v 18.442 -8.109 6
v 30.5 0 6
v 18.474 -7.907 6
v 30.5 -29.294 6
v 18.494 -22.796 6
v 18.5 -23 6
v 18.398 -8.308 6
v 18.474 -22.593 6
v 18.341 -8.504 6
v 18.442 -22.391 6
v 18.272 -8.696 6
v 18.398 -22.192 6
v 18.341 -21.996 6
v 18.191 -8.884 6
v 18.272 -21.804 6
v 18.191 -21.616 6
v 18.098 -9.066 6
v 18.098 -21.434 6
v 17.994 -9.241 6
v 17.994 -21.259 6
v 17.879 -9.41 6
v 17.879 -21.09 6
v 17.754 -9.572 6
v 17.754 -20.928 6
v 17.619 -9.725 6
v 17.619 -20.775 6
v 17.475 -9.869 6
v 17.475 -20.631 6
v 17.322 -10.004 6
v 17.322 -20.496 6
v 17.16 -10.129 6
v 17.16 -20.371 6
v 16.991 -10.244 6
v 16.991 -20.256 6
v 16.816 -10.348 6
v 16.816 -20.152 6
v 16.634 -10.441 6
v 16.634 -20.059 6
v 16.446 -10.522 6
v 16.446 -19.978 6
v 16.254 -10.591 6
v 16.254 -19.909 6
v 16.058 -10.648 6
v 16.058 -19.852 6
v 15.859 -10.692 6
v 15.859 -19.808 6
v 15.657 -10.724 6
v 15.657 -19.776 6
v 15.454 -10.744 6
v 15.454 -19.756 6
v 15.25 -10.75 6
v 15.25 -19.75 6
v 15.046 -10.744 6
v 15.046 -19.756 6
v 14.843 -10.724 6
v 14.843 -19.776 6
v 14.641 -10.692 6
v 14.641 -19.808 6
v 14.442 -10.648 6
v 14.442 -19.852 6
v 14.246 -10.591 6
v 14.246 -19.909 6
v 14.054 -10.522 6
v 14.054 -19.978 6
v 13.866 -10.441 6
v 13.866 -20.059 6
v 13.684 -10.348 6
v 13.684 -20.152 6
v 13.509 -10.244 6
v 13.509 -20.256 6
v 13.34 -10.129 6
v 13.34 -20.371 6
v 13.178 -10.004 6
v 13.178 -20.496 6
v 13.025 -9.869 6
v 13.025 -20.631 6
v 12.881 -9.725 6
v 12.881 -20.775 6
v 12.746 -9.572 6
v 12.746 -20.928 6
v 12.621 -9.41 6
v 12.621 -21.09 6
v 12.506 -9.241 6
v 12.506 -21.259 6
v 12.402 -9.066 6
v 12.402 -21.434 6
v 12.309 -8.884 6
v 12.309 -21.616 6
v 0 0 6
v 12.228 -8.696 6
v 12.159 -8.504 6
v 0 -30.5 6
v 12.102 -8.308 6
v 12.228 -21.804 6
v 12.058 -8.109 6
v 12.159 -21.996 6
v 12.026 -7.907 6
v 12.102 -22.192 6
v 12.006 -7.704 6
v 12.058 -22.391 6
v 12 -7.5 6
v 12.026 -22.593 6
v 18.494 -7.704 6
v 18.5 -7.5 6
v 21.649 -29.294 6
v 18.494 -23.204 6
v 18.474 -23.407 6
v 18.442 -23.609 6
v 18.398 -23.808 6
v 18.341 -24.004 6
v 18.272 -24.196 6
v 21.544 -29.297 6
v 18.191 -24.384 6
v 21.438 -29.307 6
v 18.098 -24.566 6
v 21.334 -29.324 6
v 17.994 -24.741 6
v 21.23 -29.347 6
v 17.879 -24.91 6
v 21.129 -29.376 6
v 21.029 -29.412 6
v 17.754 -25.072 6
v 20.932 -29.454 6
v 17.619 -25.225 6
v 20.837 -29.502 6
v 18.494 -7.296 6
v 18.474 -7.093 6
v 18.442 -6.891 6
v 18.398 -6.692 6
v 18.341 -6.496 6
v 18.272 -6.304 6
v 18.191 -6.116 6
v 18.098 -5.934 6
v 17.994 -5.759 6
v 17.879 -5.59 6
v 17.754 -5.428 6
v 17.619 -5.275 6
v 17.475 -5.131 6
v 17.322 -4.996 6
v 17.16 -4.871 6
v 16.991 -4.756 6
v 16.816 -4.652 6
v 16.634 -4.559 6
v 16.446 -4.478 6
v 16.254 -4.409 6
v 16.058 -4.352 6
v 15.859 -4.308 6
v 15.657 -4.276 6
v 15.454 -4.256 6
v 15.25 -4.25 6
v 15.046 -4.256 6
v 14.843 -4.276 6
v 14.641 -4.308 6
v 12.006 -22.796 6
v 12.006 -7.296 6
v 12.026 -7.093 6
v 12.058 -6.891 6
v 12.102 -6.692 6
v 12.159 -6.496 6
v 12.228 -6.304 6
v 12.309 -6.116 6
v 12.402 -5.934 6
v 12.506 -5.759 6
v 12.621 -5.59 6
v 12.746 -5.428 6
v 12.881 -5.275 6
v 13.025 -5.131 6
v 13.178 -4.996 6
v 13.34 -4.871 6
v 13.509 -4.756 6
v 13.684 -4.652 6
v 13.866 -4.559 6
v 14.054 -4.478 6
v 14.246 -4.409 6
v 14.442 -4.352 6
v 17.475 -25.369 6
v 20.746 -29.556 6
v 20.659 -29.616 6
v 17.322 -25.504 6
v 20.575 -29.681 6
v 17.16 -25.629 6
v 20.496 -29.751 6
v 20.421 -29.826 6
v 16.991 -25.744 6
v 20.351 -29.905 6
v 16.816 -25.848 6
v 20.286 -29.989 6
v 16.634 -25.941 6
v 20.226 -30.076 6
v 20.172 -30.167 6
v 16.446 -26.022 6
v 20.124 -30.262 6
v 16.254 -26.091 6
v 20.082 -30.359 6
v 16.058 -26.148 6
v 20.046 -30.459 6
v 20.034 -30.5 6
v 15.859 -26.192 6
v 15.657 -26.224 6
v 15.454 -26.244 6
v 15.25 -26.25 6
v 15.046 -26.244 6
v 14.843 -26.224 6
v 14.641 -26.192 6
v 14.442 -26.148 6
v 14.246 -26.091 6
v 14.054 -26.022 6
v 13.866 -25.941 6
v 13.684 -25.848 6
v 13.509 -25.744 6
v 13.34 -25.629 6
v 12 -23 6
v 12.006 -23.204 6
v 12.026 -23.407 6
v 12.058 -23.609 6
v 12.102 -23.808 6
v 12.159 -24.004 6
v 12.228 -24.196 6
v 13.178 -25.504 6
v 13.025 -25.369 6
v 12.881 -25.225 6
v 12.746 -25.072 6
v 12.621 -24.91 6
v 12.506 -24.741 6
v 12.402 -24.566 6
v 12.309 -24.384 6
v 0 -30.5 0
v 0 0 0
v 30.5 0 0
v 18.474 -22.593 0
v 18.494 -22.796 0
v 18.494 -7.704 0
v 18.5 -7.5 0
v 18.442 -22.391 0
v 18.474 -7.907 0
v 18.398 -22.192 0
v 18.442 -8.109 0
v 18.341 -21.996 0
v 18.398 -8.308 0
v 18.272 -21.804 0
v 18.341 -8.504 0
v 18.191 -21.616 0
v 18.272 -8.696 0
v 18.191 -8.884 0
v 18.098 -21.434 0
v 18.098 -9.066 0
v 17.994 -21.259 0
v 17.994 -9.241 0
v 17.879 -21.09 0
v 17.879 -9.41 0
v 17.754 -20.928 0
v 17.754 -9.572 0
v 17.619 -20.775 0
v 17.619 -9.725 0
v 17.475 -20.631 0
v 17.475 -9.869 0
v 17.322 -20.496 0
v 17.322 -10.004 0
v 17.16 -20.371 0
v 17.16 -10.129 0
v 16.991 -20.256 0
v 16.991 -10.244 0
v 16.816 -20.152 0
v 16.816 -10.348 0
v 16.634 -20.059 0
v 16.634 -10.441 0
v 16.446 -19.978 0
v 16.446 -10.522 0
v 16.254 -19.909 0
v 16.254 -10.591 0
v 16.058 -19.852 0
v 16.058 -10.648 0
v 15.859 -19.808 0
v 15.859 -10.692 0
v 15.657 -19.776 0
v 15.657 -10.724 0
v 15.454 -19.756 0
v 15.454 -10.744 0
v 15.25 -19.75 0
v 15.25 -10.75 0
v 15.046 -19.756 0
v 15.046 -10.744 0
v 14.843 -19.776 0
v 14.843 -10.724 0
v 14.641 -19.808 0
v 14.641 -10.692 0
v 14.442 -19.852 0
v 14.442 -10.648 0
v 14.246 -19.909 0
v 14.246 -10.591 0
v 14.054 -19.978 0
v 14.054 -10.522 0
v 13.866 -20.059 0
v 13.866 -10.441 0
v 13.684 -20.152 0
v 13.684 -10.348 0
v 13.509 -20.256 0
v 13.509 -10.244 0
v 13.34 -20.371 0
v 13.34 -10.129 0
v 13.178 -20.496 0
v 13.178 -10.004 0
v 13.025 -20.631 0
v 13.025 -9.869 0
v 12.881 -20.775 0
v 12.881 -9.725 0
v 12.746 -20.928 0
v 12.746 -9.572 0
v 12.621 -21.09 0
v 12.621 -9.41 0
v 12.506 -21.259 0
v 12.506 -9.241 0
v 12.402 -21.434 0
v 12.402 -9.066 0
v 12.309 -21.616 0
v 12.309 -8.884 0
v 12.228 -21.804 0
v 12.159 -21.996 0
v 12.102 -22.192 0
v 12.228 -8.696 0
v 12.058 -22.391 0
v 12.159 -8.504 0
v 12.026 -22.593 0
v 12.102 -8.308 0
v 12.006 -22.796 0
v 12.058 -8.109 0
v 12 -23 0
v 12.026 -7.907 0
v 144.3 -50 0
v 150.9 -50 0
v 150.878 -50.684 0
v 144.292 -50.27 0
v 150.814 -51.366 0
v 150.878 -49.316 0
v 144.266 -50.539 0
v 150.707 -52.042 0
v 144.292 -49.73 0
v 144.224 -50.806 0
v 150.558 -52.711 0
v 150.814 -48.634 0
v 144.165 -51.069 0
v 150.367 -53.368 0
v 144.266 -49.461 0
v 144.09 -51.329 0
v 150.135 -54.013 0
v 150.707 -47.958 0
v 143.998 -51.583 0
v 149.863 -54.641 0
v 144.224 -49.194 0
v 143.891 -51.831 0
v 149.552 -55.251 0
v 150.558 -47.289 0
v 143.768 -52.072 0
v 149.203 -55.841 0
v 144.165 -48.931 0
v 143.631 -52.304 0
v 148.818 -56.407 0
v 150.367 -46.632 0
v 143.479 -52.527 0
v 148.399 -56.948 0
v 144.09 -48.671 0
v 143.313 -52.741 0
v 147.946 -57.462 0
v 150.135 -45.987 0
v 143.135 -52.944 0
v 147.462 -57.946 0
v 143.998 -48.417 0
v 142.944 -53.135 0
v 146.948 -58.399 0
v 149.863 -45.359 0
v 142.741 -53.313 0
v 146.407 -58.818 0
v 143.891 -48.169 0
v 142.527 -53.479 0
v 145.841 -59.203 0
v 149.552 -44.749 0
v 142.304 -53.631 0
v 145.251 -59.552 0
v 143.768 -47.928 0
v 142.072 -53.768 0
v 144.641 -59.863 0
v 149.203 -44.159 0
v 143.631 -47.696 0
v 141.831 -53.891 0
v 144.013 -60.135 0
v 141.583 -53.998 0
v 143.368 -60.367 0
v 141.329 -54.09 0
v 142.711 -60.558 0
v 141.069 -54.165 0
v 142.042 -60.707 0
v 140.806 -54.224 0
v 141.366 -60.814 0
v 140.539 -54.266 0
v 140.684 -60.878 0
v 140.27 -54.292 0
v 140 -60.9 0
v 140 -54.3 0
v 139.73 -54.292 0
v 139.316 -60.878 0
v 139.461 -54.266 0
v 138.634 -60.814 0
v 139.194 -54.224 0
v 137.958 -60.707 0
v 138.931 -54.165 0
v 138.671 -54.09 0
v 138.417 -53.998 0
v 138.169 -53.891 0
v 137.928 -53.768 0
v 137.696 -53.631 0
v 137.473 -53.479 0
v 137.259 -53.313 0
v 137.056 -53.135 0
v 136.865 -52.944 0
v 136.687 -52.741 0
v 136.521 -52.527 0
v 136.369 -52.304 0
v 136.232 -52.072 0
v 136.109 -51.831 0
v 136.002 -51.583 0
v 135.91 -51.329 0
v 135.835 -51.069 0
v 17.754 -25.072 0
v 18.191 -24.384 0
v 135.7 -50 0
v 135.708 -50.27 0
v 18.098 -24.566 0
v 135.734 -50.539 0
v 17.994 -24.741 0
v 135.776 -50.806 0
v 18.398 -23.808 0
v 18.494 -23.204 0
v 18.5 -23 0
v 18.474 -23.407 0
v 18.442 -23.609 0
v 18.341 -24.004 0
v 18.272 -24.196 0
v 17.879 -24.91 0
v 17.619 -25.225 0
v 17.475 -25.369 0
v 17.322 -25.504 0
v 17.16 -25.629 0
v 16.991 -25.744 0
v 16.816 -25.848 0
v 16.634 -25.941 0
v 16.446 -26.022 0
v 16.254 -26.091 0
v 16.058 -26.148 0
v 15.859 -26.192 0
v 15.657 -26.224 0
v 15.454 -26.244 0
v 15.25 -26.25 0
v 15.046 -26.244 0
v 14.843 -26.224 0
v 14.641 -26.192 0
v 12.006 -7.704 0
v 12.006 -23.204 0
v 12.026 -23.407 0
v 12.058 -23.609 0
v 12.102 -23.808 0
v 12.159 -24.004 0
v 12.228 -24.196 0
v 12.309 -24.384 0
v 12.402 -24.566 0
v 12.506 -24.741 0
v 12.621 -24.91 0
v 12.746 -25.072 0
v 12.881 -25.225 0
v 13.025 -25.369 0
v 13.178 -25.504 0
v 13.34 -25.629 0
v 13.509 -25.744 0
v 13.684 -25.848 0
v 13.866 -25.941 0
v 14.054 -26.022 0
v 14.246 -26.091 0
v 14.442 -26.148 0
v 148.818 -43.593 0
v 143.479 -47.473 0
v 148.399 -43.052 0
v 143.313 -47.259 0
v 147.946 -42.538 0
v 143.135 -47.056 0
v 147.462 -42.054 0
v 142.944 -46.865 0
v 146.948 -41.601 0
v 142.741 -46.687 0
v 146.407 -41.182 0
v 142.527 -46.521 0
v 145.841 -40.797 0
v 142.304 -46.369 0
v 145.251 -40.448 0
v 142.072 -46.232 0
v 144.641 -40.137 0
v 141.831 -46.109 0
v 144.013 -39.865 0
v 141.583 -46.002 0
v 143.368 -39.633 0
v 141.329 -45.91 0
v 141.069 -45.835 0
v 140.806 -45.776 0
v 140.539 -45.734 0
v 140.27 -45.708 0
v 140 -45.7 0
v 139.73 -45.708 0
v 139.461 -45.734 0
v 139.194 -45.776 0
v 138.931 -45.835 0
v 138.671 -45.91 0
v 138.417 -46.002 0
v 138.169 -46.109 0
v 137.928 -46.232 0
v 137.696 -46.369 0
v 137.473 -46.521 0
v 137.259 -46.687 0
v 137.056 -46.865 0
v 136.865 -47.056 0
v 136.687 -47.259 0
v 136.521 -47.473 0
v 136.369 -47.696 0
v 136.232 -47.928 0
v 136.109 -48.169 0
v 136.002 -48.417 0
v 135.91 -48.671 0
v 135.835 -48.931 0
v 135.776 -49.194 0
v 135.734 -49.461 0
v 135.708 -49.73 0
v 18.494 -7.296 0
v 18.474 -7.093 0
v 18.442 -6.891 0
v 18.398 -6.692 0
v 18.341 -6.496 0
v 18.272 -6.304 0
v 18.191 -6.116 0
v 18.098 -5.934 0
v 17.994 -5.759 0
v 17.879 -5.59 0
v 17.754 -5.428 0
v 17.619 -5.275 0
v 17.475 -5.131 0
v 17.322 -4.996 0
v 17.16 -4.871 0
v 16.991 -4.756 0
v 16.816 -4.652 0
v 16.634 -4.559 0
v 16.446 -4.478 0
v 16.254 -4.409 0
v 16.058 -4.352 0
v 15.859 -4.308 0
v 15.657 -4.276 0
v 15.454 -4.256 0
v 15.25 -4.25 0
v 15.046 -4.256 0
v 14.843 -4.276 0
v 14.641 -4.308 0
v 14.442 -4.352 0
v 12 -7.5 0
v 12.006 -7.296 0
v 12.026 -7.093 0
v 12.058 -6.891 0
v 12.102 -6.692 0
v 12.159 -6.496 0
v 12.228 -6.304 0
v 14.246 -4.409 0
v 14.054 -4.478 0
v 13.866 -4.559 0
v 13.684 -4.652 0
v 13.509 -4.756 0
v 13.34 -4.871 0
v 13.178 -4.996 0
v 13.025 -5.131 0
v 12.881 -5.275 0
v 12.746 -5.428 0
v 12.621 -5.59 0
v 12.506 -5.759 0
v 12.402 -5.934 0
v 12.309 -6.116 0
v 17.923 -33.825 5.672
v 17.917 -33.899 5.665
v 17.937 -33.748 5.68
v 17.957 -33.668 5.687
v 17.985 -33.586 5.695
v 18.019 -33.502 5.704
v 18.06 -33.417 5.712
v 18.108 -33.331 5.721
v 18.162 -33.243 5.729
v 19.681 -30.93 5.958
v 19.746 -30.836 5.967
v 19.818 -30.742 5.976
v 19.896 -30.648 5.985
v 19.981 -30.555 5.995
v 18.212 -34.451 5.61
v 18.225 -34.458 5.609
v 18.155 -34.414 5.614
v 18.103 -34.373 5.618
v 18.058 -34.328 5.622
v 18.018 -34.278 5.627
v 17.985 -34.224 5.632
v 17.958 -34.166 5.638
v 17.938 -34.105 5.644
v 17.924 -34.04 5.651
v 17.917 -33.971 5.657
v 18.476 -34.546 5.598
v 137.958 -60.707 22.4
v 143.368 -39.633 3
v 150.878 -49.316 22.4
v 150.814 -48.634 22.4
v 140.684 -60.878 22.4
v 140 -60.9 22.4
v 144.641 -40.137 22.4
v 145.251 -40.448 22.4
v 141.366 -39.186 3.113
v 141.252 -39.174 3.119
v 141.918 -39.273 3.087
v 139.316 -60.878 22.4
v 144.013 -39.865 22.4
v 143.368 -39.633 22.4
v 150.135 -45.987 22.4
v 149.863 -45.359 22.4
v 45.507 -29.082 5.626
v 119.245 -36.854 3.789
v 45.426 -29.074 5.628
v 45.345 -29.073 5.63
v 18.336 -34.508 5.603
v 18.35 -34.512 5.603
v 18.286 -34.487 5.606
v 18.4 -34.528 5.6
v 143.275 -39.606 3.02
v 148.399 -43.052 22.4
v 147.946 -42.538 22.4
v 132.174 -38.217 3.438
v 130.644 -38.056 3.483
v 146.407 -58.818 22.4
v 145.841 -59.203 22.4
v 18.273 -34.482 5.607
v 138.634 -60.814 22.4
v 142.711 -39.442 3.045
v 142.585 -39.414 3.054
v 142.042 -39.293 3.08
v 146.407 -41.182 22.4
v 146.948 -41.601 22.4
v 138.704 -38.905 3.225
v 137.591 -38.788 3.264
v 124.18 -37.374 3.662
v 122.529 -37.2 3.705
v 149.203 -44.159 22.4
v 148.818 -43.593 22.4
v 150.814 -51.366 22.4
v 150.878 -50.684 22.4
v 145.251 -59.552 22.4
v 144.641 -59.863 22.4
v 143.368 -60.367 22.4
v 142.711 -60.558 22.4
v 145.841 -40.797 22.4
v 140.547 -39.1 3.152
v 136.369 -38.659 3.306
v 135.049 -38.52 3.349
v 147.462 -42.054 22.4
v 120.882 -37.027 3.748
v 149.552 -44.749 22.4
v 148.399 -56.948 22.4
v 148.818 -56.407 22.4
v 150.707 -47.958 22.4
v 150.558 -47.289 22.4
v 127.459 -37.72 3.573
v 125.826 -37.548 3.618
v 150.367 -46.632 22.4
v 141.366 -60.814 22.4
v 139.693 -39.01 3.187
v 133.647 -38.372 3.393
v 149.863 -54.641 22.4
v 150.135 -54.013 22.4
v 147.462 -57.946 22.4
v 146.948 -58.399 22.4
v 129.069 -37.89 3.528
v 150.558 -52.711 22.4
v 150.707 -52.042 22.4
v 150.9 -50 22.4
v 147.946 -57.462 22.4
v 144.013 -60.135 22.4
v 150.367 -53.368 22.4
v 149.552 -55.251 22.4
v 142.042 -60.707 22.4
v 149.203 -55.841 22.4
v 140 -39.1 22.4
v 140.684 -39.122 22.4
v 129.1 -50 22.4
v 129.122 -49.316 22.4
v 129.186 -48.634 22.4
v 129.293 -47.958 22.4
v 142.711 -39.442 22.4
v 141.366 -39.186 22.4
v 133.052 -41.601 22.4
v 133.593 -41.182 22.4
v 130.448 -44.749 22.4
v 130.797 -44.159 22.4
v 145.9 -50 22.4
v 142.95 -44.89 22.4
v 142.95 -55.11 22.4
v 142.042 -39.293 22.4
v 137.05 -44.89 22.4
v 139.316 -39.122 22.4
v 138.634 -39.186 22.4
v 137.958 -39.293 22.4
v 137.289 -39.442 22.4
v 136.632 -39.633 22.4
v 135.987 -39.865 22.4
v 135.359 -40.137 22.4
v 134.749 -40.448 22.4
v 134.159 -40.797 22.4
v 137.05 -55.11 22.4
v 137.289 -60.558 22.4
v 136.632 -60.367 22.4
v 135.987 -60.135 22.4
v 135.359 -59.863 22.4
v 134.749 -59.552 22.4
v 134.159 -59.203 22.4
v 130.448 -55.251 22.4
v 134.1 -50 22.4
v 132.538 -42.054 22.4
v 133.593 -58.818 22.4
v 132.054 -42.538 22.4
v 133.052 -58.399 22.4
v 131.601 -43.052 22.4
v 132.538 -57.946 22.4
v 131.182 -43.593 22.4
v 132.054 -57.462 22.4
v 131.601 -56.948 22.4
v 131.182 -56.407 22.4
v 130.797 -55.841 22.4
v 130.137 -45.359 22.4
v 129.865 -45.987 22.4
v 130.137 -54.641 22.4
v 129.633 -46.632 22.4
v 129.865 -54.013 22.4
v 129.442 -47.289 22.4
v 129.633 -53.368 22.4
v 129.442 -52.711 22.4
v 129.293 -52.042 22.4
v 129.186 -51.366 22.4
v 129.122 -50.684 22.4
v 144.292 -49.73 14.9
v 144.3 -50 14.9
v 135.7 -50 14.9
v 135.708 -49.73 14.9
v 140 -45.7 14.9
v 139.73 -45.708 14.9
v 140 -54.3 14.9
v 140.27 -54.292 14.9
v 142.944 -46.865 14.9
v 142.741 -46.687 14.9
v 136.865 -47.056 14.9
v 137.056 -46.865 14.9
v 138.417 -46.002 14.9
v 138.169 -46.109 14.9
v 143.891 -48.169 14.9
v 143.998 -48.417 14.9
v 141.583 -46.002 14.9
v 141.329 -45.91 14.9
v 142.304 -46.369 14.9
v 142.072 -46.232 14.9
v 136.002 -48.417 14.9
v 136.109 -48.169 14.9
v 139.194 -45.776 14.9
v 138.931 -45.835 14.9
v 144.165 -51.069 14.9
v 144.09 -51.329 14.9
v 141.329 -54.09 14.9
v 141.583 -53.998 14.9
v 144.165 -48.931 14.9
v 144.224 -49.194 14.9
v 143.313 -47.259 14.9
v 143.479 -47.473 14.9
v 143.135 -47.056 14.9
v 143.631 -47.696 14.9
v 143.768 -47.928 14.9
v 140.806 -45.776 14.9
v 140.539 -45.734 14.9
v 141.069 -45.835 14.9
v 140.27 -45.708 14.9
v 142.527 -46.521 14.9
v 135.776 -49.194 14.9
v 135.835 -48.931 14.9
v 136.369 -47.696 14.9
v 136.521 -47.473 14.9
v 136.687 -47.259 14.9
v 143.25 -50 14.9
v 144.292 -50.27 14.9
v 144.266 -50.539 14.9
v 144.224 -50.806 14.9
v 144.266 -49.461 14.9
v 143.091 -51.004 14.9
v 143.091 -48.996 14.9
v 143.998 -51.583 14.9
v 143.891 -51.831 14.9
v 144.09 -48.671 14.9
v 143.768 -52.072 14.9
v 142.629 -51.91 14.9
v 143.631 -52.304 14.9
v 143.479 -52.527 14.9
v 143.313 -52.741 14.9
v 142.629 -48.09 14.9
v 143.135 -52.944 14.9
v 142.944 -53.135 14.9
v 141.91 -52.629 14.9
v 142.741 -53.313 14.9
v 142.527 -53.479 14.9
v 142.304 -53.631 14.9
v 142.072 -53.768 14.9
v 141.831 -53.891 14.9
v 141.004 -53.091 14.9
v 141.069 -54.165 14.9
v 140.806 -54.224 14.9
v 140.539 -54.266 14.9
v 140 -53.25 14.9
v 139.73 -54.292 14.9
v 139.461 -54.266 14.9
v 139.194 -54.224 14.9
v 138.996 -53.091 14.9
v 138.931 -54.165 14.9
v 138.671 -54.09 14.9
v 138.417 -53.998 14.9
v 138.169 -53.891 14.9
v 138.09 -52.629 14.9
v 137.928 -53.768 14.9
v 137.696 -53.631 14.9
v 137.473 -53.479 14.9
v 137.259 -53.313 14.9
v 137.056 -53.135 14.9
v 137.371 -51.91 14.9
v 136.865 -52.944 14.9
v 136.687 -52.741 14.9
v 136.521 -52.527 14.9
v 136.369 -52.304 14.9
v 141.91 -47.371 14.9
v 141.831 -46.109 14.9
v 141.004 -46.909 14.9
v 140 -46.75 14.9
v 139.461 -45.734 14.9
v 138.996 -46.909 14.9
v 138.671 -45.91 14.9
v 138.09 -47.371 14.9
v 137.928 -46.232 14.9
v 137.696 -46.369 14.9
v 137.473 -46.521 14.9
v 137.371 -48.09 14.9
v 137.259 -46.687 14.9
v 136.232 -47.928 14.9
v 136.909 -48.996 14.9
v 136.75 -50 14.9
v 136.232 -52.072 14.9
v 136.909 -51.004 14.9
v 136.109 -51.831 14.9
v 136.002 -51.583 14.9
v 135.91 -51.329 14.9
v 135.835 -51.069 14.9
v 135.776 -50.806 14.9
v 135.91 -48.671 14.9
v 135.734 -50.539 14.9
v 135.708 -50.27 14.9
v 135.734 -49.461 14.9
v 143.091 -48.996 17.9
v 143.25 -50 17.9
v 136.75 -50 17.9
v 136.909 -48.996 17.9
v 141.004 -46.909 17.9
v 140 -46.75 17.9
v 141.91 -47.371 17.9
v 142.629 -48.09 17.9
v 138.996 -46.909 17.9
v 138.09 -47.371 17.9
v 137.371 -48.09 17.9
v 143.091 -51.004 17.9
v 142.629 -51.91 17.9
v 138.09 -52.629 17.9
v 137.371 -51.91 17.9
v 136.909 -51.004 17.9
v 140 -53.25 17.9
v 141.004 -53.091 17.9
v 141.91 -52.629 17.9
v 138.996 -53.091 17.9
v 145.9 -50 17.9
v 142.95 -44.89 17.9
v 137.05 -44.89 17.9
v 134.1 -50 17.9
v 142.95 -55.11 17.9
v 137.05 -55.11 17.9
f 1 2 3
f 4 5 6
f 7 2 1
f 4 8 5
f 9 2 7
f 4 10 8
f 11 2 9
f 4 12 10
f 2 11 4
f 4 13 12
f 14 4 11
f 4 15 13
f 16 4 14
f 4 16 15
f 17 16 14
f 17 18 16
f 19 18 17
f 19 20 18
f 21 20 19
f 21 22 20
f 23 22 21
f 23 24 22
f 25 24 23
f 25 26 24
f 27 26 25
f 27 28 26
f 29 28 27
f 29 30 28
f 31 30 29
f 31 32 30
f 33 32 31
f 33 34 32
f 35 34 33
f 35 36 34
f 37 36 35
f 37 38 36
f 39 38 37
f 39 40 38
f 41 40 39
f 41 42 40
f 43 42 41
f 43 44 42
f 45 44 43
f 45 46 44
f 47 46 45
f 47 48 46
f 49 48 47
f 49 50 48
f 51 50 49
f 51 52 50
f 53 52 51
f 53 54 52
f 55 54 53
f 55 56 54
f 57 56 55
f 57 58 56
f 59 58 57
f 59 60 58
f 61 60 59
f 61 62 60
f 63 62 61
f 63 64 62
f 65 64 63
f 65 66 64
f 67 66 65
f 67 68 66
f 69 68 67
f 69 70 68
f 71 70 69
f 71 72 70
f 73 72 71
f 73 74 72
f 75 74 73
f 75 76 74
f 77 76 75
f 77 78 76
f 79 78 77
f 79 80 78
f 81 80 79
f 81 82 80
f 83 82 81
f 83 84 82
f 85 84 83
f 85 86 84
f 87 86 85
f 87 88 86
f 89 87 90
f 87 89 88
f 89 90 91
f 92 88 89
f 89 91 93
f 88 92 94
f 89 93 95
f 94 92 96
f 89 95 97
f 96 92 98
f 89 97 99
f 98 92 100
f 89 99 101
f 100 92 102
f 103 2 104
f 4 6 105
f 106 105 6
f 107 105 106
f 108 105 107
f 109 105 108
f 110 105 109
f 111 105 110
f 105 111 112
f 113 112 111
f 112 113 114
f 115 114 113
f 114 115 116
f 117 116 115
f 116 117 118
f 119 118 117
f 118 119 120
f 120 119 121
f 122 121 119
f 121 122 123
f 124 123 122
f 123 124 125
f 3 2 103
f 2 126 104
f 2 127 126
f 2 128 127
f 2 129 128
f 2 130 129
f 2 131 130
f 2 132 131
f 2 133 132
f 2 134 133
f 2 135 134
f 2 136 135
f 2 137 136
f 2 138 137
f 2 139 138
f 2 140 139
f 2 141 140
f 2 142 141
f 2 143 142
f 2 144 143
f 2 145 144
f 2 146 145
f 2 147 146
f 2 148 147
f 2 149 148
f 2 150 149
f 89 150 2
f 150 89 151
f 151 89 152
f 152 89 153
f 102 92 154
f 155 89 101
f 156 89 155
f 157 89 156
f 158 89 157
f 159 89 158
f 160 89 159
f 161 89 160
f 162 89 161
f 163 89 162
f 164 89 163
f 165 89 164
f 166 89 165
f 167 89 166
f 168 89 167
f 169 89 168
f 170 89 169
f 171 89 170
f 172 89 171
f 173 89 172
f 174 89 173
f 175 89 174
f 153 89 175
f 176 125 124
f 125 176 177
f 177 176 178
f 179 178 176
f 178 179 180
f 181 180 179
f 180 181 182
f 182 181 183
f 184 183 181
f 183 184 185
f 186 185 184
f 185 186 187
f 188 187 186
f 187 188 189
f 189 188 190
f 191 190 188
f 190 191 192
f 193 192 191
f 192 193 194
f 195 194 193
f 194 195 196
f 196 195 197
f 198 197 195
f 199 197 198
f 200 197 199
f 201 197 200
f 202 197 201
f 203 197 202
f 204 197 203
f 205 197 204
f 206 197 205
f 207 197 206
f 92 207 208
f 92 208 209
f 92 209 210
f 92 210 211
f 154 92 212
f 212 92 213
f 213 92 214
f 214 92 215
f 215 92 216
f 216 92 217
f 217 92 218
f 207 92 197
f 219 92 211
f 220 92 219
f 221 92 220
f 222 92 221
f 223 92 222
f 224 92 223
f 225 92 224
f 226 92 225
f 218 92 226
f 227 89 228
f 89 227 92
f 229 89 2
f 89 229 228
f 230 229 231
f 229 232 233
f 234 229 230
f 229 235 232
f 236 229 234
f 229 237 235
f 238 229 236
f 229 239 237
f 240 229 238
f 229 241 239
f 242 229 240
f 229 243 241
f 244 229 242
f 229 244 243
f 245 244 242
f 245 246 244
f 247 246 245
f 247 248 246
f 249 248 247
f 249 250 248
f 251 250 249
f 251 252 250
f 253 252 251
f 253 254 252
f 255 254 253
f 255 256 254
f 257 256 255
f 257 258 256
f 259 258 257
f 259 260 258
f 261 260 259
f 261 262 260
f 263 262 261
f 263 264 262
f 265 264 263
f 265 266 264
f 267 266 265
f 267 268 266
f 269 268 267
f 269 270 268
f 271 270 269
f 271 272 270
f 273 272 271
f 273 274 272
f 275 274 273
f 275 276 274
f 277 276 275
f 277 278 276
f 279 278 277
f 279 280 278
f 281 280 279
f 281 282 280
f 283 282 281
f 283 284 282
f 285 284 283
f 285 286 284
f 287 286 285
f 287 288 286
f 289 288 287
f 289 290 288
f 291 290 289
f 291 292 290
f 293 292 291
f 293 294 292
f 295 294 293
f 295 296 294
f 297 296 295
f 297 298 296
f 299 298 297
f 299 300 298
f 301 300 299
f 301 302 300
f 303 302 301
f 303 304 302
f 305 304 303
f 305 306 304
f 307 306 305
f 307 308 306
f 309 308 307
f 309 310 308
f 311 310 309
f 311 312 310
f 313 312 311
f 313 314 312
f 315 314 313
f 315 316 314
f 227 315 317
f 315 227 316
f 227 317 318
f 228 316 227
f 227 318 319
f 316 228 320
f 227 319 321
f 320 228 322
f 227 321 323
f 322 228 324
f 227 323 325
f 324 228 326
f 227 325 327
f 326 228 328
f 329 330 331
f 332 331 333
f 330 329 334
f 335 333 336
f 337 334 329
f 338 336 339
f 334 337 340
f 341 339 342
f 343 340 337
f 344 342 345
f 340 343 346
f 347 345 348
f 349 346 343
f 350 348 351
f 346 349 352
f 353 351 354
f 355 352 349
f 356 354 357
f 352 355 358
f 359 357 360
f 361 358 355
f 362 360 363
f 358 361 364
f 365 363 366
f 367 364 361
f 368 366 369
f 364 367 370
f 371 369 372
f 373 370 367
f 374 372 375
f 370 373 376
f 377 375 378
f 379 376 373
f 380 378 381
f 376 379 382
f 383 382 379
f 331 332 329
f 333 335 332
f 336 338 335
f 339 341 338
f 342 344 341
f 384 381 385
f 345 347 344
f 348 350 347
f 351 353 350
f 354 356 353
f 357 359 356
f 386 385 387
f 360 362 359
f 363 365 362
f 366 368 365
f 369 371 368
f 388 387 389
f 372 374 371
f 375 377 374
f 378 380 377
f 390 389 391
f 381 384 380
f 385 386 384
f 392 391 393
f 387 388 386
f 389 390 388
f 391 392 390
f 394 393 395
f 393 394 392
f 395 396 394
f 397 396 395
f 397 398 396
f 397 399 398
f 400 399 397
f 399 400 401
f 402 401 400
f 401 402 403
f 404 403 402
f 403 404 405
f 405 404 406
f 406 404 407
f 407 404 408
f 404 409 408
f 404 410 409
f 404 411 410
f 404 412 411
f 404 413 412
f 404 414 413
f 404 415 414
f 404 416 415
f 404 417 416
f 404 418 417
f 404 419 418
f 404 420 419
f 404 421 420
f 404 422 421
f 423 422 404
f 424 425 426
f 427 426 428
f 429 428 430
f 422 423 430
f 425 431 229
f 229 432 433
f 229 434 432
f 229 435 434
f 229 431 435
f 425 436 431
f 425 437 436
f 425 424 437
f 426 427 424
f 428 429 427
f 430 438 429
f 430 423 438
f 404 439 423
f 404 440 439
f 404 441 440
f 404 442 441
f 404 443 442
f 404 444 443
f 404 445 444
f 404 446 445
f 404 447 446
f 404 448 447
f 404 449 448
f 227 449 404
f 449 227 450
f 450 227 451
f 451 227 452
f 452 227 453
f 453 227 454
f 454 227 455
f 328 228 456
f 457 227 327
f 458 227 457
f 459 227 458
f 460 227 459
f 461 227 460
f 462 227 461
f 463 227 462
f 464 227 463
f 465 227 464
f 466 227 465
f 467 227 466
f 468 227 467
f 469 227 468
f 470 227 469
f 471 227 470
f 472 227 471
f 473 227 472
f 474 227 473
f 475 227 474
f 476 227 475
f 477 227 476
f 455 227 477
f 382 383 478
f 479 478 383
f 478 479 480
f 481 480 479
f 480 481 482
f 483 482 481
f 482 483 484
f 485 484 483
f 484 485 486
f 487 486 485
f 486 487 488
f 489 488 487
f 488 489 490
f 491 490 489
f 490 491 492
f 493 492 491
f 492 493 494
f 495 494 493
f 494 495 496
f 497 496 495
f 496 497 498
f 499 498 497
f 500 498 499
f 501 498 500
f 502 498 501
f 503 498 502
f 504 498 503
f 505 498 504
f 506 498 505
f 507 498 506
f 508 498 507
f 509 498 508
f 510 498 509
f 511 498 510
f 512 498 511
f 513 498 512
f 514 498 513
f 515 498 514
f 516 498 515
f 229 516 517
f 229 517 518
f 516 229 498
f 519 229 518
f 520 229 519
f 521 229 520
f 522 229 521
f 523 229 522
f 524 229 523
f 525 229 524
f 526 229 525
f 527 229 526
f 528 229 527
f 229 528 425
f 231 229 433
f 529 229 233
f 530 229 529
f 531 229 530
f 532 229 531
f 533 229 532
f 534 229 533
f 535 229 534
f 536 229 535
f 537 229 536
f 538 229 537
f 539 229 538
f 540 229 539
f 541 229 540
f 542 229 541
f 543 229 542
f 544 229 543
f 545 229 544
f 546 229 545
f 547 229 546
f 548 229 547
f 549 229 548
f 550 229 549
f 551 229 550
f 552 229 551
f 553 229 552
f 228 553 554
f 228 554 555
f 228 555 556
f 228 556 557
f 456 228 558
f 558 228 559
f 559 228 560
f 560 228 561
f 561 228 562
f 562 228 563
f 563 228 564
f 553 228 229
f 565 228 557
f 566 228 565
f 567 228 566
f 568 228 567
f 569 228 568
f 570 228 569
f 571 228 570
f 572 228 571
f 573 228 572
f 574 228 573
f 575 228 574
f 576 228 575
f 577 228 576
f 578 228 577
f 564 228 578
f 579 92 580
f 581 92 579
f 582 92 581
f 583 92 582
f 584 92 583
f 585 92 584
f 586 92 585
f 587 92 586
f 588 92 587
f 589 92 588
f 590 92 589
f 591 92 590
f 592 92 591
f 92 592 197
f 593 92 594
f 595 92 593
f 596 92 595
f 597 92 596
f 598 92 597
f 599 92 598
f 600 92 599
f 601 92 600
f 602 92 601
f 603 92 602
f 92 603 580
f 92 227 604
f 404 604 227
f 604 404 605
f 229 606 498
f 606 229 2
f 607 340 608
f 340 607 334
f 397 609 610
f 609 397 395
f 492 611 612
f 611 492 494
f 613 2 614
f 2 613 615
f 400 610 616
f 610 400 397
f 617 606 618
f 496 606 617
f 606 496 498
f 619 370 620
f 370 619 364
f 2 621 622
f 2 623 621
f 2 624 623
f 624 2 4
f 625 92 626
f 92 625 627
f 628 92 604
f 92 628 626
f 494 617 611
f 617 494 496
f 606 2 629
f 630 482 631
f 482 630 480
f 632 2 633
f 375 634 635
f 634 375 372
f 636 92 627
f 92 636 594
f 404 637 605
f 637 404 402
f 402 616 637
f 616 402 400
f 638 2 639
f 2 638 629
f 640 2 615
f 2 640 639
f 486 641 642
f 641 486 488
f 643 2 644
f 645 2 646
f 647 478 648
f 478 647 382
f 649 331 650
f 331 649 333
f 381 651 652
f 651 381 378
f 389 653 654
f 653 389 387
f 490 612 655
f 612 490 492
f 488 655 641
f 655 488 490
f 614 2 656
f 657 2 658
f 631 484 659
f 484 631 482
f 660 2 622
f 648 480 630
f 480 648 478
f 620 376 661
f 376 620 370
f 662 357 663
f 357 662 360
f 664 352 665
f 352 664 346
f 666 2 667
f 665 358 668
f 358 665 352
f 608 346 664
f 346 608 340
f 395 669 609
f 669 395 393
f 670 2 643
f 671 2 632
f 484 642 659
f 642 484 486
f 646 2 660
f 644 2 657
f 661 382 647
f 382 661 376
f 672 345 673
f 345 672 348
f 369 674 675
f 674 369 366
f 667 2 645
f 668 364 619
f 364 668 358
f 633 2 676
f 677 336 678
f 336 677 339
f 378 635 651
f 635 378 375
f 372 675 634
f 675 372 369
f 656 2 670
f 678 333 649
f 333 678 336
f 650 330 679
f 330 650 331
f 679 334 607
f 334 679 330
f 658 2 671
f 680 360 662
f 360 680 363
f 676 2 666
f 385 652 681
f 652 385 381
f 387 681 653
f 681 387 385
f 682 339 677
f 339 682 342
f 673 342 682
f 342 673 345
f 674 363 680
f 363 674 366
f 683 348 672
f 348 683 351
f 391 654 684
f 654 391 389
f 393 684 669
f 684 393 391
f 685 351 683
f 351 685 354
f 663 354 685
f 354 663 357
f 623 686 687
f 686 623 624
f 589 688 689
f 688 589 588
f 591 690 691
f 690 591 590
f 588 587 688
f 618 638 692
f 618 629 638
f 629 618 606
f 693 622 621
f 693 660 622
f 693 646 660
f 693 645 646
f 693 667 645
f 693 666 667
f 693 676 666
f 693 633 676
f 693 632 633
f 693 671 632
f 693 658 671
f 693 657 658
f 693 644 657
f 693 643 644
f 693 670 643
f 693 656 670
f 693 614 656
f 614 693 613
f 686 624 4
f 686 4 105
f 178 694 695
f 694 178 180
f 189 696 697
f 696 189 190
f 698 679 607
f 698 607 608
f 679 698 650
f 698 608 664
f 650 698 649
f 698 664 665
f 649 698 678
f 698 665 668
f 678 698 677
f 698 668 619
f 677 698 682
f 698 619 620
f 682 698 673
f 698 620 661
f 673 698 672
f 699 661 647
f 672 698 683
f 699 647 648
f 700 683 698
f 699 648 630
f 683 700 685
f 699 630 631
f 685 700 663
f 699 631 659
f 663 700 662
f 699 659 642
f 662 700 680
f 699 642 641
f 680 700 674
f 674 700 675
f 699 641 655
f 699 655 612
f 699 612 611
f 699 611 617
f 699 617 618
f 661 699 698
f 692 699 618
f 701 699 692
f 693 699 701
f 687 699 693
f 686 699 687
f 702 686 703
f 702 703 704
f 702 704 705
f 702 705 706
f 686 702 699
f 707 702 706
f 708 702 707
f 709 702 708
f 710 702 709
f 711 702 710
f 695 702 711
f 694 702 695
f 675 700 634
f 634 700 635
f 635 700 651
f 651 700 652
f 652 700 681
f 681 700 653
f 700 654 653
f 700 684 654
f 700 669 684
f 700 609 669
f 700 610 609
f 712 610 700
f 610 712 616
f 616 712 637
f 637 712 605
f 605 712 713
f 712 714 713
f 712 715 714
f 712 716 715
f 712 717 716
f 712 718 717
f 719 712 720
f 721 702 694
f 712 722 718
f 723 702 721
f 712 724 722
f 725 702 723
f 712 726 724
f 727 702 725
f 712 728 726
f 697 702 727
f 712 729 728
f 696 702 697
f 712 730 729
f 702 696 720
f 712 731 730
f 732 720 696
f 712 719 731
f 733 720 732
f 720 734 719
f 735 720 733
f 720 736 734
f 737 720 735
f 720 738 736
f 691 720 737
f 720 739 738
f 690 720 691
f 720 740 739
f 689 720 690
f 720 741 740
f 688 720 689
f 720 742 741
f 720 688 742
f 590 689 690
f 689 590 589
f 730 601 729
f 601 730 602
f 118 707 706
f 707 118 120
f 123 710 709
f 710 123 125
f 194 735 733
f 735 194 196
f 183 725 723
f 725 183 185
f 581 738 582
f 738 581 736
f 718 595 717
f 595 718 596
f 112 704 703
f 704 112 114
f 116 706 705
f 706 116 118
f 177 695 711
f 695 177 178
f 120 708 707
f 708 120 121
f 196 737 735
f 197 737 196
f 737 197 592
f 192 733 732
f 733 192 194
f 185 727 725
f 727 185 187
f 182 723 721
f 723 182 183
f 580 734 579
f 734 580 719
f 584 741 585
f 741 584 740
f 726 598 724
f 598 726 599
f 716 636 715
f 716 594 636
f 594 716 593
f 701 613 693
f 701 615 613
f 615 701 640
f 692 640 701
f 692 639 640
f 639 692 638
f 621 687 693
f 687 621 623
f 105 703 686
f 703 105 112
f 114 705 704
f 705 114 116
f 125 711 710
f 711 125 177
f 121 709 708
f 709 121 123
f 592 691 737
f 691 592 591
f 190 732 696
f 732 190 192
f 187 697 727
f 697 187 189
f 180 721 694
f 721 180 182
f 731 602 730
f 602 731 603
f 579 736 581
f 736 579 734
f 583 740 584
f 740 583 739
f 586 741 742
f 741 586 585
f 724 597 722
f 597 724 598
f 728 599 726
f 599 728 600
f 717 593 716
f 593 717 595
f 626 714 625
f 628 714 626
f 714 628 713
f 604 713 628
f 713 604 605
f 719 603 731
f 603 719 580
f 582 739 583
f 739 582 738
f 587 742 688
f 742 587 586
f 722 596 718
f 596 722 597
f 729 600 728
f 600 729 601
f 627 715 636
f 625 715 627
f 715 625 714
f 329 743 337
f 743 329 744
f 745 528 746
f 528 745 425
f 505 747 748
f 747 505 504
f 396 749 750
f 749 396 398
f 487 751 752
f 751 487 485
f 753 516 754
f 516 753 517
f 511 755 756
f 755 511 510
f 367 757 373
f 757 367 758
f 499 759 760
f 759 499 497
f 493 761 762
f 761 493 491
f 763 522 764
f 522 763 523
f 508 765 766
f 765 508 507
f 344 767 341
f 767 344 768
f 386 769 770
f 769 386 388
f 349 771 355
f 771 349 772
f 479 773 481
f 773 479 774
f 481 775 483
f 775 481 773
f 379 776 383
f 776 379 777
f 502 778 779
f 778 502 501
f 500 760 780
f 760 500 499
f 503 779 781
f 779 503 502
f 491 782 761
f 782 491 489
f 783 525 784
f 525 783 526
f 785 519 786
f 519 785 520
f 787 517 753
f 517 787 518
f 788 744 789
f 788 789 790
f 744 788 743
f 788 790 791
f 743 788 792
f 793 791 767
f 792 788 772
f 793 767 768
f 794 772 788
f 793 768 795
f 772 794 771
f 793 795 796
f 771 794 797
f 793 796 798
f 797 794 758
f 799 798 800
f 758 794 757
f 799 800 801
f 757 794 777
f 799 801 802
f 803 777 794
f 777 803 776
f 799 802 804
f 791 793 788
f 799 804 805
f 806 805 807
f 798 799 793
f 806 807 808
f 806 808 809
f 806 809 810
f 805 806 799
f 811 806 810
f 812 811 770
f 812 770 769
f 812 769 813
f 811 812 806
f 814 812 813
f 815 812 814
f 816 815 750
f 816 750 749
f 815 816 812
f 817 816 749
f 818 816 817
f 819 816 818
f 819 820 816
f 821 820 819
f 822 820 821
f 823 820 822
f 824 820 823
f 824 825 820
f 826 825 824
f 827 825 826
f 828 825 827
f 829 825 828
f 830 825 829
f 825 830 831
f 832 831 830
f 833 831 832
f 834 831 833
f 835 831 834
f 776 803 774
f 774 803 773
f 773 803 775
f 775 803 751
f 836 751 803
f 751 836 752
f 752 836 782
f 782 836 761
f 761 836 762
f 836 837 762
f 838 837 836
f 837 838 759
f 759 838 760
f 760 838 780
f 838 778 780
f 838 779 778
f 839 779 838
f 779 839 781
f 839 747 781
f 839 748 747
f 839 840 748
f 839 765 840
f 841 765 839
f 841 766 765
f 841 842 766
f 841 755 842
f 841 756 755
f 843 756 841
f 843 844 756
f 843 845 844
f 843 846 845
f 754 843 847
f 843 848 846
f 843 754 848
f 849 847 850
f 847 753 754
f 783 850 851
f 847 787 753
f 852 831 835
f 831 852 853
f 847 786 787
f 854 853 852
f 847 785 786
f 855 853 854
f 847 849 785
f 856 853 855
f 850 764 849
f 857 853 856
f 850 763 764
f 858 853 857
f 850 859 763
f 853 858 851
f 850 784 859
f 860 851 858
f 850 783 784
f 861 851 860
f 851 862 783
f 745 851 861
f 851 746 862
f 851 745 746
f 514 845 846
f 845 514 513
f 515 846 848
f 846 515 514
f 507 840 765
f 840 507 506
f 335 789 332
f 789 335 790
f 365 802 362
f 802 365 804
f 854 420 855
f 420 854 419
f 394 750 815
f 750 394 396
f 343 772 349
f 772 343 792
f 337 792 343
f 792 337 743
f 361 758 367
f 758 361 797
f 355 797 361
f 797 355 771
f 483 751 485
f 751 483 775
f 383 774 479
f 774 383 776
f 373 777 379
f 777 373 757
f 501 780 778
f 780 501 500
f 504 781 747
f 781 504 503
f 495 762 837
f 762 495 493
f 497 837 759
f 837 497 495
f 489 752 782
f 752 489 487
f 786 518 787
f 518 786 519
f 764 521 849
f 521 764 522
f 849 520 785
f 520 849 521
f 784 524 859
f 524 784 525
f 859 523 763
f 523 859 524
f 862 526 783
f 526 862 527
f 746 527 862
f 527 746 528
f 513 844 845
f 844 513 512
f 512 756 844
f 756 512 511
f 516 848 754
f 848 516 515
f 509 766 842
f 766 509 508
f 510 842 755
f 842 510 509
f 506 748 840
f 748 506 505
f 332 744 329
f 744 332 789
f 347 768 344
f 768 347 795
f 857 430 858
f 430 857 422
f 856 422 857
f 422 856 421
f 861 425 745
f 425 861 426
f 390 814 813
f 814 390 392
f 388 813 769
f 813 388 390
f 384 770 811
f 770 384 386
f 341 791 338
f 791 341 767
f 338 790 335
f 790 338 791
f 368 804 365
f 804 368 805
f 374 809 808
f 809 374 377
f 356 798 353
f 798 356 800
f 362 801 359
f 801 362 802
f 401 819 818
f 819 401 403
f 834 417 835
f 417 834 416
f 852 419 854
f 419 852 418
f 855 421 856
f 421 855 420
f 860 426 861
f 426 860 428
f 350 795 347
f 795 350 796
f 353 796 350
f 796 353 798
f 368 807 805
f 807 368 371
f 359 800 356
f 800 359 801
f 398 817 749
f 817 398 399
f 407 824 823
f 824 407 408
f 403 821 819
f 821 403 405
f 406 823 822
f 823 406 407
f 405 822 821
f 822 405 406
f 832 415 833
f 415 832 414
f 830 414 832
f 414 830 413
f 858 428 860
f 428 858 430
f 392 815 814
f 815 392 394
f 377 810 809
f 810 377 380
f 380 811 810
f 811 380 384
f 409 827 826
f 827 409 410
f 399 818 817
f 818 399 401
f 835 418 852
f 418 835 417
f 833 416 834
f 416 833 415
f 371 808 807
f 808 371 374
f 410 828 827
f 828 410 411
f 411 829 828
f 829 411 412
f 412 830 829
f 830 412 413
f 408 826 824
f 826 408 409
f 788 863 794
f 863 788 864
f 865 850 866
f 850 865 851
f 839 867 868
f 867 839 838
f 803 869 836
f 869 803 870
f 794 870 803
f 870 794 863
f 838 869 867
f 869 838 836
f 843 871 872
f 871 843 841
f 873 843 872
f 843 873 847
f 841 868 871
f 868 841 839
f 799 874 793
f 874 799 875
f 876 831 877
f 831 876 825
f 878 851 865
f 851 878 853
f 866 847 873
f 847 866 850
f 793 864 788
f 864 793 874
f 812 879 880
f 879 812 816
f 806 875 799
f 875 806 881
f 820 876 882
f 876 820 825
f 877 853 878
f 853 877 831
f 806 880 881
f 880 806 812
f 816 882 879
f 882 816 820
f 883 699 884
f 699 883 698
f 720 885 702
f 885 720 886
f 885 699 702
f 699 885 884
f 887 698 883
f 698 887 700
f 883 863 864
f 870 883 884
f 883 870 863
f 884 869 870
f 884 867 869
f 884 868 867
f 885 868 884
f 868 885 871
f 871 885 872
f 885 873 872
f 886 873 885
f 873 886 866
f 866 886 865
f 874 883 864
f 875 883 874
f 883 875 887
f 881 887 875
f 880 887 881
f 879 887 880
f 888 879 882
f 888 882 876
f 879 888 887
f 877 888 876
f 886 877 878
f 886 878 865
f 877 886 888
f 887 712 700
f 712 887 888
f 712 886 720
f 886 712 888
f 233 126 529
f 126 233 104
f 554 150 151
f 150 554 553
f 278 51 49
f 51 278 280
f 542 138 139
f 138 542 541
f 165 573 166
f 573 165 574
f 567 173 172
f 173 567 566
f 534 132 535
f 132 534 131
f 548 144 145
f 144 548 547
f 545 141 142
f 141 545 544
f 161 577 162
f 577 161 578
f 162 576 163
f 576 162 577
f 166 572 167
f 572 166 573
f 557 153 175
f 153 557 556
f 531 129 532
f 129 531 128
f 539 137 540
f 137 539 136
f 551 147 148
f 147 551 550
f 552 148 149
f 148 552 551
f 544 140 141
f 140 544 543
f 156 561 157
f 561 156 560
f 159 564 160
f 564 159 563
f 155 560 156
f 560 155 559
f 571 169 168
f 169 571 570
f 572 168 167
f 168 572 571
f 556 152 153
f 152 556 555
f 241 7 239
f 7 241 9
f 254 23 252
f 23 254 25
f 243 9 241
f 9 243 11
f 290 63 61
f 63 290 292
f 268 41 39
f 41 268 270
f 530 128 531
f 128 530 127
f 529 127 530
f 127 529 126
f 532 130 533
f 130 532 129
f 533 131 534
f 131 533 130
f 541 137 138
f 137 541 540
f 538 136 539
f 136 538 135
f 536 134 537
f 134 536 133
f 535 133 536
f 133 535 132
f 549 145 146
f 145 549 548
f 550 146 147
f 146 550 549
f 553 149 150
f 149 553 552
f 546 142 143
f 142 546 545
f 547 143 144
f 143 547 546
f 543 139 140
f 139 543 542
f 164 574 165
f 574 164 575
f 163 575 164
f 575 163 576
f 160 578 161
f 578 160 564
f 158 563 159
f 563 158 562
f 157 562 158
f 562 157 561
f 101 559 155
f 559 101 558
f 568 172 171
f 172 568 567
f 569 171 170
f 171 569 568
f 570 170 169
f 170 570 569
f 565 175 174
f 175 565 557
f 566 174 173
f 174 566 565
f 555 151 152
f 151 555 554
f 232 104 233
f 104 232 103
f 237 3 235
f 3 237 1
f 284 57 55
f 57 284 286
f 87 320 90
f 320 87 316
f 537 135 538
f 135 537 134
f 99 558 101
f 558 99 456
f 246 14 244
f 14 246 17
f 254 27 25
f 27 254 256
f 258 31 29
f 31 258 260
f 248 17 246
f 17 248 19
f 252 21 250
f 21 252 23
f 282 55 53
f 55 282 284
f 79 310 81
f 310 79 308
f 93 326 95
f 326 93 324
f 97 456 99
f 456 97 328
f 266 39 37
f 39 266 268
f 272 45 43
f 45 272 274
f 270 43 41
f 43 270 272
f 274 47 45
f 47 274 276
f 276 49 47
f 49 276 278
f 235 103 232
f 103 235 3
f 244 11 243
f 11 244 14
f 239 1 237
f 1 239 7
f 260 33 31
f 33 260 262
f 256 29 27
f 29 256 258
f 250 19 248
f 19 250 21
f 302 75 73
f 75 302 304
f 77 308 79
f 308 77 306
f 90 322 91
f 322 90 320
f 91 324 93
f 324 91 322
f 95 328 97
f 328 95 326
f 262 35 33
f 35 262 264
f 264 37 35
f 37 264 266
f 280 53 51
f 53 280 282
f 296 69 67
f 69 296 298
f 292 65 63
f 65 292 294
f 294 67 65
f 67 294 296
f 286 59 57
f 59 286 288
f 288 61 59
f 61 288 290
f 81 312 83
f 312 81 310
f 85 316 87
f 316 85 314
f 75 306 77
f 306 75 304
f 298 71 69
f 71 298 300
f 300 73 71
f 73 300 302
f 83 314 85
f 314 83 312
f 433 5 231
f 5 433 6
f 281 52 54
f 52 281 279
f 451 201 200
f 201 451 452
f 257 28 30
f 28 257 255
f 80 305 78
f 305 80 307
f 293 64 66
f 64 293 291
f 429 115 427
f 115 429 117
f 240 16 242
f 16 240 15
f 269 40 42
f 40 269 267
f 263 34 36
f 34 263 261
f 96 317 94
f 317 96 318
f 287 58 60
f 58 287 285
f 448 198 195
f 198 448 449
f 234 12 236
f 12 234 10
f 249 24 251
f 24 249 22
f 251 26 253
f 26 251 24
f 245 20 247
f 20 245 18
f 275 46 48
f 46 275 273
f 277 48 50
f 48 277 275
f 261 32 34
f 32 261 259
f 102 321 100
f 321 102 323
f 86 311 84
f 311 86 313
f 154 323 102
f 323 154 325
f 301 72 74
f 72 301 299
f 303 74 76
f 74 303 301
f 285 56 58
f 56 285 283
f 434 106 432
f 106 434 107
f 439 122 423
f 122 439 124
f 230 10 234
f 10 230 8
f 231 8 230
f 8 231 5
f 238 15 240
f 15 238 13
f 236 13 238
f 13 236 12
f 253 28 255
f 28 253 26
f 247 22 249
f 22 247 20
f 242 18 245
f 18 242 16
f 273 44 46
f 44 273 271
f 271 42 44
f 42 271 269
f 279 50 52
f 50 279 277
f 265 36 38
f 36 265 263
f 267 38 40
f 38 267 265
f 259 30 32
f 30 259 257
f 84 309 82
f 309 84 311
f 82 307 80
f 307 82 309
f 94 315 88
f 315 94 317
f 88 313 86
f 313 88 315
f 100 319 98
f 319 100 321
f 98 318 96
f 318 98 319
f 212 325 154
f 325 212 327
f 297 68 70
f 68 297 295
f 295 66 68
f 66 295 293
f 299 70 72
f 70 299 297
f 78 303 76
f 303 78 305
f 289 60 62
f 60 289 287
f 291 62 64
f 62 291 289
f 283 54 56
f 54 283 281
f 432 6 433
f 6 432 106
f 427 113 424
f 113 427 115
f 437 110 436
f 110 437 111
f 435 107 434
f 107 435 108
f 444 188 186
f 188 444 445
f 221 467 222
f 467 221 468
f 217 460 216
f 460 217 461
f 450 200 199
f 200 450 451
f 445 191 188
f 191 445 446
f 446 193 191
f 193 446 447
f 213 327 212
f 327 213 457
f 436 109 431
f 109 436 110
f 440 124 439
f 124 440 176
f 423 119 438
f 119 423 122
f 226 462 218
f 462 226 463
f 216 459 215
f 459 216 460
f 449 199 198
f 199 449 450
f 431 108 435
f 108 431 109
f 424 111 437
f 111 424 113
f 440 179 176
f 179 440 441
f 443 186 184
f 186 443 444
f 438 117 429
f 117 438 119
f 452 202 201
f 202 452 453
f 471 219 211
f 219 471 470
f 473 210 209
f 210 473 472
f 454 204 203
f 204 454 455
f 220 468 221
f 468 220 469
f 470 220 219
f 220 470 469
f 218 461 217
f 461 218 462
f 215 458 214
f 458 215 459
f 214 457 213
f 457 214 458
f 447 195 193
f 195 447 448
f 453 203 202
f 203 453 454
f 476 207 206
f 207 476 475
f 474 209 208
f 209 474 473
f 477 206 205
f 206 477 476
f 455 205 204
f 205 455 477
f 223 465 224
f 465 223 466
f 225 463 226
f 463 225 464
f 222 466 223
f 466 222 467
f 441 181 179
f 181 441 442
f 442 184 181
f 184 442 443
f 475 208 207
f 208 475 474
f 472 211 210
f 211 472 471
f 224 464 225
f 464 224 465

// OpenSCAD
// file: ../src/888_1002.scad
//@set_slicing_config(../slicing/default.ini)

include <../parameters.scad>
use <../src/888_1002.scad>

888_1002(print_plate=true);
// file: ../src/888_1001.scad
include <../parameters.scad>
use <888_1002.scad>

module 888_1001() {
    difference() {
        union() {
            hull() {
                cube([ALU_profile_width, 6, ALU_profile_width]);
                
                translate([calibration_arm_x_offset, 0, calibration_arm_y_offset])
                rotate([-90, 0, 0])
                cylinder(d=M6_nut_diameter+5*2, h=3, $fn=100);
            }
            
            hull() {
                translate([0, 0, ALU_profile_width-3])
                cube([ALU_profile_width, 3, 3]);
                
                translate([calibration_arm_x_offset, 0, calibration_arm_y_offset])
                rotate([-90, 0, 0])
                cylinder(d=M6_nut_diameter+5*2, h=14.5+M6_nut_height+3, $fn=100);
            }
            
            translate([calibration_arm_x_offset, 0, calibration_arm_y_offset])
            rotate([-90, 0, 0])
            cylinder(d=M6_nut_diameter+5*2, h=14.5+M6_nut_height+3, $fn=100);
        }
    
        // pulley hole
        translate([calibration_arm_x_offset, -.1, calibration_arm_y_offset])
        rotate([-90, 0, 0])
        union() {
            cylinder(d=M8_screw_diameter, h=15, $fn=100);
            cylinder(d=M6_screw_diameter, h=30, $fn=20);
            
            translate([0, 0, 15+3])
            cylinder(d=M6_nut_diameter, h=70, $fn=6);
        }
        
        
        // ALU profile screws
        translate([ALU_profile_width/2, -1, 7.5])
        rotate([-90, 0, 0])
        cylinder(d=M6_screw_diameter, h=6+2, $fn=100);
        
        translate([ALU_profile_width/2, -1, ALU_profile_width-7.5])
        rotate([-90, 0, 0])
        cylinder(d=M6_screw_diameter, h=6+2, $fn=100);
    }
}

888_1001();

translate([calibration_arm_x_offset, -.5, calibration_arm_y_offset])
rotate([90, 0, 0])
#888_1002();

translate([calibration_arm_x_offset, -20.5, calibration_arm_y_offset])
rotate([-90, 0, 0])
#cylinder(d=M8_screw_diameter, h=35, $fn=100);
// file: ../parameters.scad
maximum_printable_size = 150;

layer_thickness = 0.3;
global_clearance = 0.5;


//Screw diameter and nut for M10 [mm]
M10_screw_diameter = 10.4;
M10_head_height = 10;
M10_head_diameter = 16+0.5;
M10_nut_height = 10.5;
M10_nut_diameter = 25.5;
M10_nut_pocket = 22.3;

//Screw diameter for M8 [mm]
M8_screw_diameter = 8.6;
M8_head_height = 8;
M8_head_diameter = 13.5;
M8_nut_height = 7.5;
M8_square_nut_thin_height = 4.5;
M8_nut_diameter = 14.4 + 0.5;
M8_nut_pocket = 13 + 0.5;
M8_washer_diameter = 16;
M8_washer_thickness = 1.5;


//Screw diameter and nut for M6 [mm]
M6_screw_diameter=6.5;
M6_head_diameter = 10+0.5;
M6_head_height = 6;
M6_nut_height = 4.9;
M6_nut_diameter = 11.8;
M6_nut_pocket = 10.4;
M6_square_nut_height = 3;
M6_square_nut_diameter = 10;
M6_washer_thickness = 1.6;

//Screw diameter and nut for M5 [mm]
M5_screw_diameter=5.5;
M5_head_height = 5;
M5_head_diameter = 13+0.5;
M5_nut_height = 4.5;
M5_nut_diameter = 9.4;
M5_nut_pocket = 8.4;

//Screw diameter and nut for M4 [mm]
M4_screw_diameter=4.5;
M4_screw_head_height = 4;
M4_nut_height = 3.2;
M4_nut_diameter = 8.4;
M4_nut_pocket = 7.5;

//Screw diameter and nut for M3 [mm]
M3_screw_diameter = 3.2;
M3_nut_height = 2.7;
M3_nut_diameter = 6.6;
M3_nut_pocket = 5.6;
M3_screw_head_height = 3;

//Screw diameter and nut for M2,5 [mm]
M2_5_screw_diameter = 2.7;
M2_5_nut_height = 2.3;
M2_5_nut_diameter = 6;
M2_5_nut_pocket = 5.5;

// kulove lozisko

bearing_efsm_08_h = 33+1;
bearing_efsm_08_m = 22;
bearing_efsm_08_db = 18;
bearing_efsm_08_ag = 10.5;
bearing_efsm_08_n = M4_screw_diameter;
bearing_efsm_08_a1 = 5.5;
bearing_efsm_08_d = 8.25;
bearing_efsm_08_B = 8; // ball height

bearing_efsm_10_h = 38+1;
bearing_efsm_10_m = 26;
bearing_efsm_10_db = 21.9;
bearing_efsm_10_ag = 12+0.2;
bearing_efsm_10_n = M5_screw_diameter;
bearing_efsm_10_a1 = 6.5;
bearing_efsm_10_d = 10.25;


bearing_efsm_12_width = 40+1;
bearing_efsm_12_h = bearing_efsm_12_width;
bearing_efsm_12_boltd = 28/2; // polovina vzdalenosti mezi srouby
bearing_efsm_12_m = bearing_efsm_12_boltd*2;
bearing_efsm_12_db = 25;
bearing_efsm_12_ag = 13;
bearing_efsm_12_a1 = 7;
bearing_efsm_12_n = M5_screw_diameter;
bearing_efsm_12_d = 12.15;
bearing_efsm_12_B = 10; // ball height
bearing_efsm_space = 1;

bearing_efsm_17_width = 54+1;
bearing_efsm_17_h = bearing_efsm_17_width;
bearing_efsm_17_boltd = 38/2; // polovina vzdalenosti mezi srouby
bearing_efsm_17_m = bearing_efsm_17_boltd*2;
bearing_efsm_17_db = 35;
bearing_efsm_17_ag = 18;
bearing_efsm_17_n = M6_screw_diameter;
bearing_efsm_17_a1 = 10;
bearing_efsm_17_B = 17; // ball height

//limcove lozisko
bearing_EFOM_10_L=26; //celkova sirka zakladny
bearing_EFOM_10_d1=10.3;//diametr otvoru real=10 mm
bearing_EFOM_10_dB=22;//diametr vystupku pro ulozeni lozika
bearing_EFOM_10_H=52;//celková delka zakladny
bearing_EFOM_10_J=36;// hole pitch
bearing_EFOM_10_A1=6.5;//vyska pouzdra
bearing_EFOM_10_Ag=12;//celkova vyska
bearing_EFOM_10_N1=5;//sirka otvoru pro sroub
bearing_EFOM_10_N2=8;//delka otvoru pro sroub
bearing_EFOM_10_m=36;//roztec der pro sroub
bearing_EFOM_10_h=9;//vyska lozika


608_bearing_outer_diameter = 22.3;
608_bearing_inner_diameter = 16;
608_bearing_thickness = 7.1;


// 20 KG servo parameters

servo_20kg_axis_offset = 9.375; // jak je osa mimo stredu
servo_20kg_body_x = 42;
servo_20kg_body_y = 21;
servo_20kg_body_z = 40;
servo_20kg_thread_x = 49/2;
servo_20kg_thread_y = 10/2;
servo_20kg_body_below = 10; // jak hluboko je tělo serva pod drzaky na srouby
servo_20kg_below = 25.8; // jak hluboko je páka serva pod drzaky na srouby

servo_20kg_bolt_d = 2.5+0.3;
servo_20kg_nut_d = 5+0.3;


//strain gauge
strain_gauge_width = 12.7;
strain_gauge_length = 75.1;
strain_gauge_screw_distance = 10;

//ALU profile
ALU_profile_width = 30.5;
ALU_profile_holder_wall_thickness = 3;
ALU_profile_groove_width = 8;

//pillow block bearing
//https://www.igus.eu/product/372
//Part no. KSTM-08
KSTM08_screws_distance = 33;         //m
KSTM08_screws_holes_diameter = 4.5;  //d2
KSTM08_flange_thickness = 6;         //h3
KSTM08_case_width = 9;               //C1
KSTM08_case_length = 47;             //a
KSTM08_ball_width = 12;              //B
KSTM08_ball_hole_diameter = 7.85;    //d1


//ložiska pro malý rotor
bearing_outer_diameter = 10.2;    // Rozměr B1 v nákresu s přídavkem na toleranci otvoru
bearing_thickness = 4;        // Rozměr B2 v nákresu
//bearing_shaft_length = 19.5;    // Rozměr B3 v nákresu, Originalni hodnota 19.5
bearing_shaft_length = 20;    // Rozměr B3 v nákresu


//parametry víčka s telemetrickou anténou
S01_sila_materialu=1.2;
S01_vyska_horni_zavit=10;
S01_hloubka_zavitu=4;
S01_prumer_vnitrni=50;
LO_spodni_prumer=17.2;
LO_vyska_bez_krytu=15;
S01_tolerance_zavit=1.5;
R01_vyska_prekryti_statoru=10;

g3_0_cone1 = 70;
g3_0_srcew_dist = 55;



// scale parameters
base_length = 500;
mid_base_width = 500;
mid_base_height = 200;
mid_base_length = 500;
mid_base_x_offset = 50;
base_mid_base_hinge_offset = 50;
tower_height = 185;
tower_angle = atan((mid_base_width/2-ALU_profile_width-10)/tower_height);
tower_arm_length = tower_height/cos(tower_angle);
tower_drag_z_offset = 22;
electro_box_length = 225;
electro_box_width = 165;
electro_box_height = 51.5;

// calibration device parameters
calibration_arm_x_offset = 140;
calibration_arm_y_offset = 50;

// rotor paramters
rotor_blades_count = 2;
rotor_delta_angle = 12;
blade_mount_screw = M3_screw_diameter;
blade_mount_nut = M3_nut_diameter;
// main file
//@set_slicing_config(../slicing/default.ini)

include <../parameters.scad>
use <../src/888_1001.scad>

rotate([90, 0, 0])
888_1001();
